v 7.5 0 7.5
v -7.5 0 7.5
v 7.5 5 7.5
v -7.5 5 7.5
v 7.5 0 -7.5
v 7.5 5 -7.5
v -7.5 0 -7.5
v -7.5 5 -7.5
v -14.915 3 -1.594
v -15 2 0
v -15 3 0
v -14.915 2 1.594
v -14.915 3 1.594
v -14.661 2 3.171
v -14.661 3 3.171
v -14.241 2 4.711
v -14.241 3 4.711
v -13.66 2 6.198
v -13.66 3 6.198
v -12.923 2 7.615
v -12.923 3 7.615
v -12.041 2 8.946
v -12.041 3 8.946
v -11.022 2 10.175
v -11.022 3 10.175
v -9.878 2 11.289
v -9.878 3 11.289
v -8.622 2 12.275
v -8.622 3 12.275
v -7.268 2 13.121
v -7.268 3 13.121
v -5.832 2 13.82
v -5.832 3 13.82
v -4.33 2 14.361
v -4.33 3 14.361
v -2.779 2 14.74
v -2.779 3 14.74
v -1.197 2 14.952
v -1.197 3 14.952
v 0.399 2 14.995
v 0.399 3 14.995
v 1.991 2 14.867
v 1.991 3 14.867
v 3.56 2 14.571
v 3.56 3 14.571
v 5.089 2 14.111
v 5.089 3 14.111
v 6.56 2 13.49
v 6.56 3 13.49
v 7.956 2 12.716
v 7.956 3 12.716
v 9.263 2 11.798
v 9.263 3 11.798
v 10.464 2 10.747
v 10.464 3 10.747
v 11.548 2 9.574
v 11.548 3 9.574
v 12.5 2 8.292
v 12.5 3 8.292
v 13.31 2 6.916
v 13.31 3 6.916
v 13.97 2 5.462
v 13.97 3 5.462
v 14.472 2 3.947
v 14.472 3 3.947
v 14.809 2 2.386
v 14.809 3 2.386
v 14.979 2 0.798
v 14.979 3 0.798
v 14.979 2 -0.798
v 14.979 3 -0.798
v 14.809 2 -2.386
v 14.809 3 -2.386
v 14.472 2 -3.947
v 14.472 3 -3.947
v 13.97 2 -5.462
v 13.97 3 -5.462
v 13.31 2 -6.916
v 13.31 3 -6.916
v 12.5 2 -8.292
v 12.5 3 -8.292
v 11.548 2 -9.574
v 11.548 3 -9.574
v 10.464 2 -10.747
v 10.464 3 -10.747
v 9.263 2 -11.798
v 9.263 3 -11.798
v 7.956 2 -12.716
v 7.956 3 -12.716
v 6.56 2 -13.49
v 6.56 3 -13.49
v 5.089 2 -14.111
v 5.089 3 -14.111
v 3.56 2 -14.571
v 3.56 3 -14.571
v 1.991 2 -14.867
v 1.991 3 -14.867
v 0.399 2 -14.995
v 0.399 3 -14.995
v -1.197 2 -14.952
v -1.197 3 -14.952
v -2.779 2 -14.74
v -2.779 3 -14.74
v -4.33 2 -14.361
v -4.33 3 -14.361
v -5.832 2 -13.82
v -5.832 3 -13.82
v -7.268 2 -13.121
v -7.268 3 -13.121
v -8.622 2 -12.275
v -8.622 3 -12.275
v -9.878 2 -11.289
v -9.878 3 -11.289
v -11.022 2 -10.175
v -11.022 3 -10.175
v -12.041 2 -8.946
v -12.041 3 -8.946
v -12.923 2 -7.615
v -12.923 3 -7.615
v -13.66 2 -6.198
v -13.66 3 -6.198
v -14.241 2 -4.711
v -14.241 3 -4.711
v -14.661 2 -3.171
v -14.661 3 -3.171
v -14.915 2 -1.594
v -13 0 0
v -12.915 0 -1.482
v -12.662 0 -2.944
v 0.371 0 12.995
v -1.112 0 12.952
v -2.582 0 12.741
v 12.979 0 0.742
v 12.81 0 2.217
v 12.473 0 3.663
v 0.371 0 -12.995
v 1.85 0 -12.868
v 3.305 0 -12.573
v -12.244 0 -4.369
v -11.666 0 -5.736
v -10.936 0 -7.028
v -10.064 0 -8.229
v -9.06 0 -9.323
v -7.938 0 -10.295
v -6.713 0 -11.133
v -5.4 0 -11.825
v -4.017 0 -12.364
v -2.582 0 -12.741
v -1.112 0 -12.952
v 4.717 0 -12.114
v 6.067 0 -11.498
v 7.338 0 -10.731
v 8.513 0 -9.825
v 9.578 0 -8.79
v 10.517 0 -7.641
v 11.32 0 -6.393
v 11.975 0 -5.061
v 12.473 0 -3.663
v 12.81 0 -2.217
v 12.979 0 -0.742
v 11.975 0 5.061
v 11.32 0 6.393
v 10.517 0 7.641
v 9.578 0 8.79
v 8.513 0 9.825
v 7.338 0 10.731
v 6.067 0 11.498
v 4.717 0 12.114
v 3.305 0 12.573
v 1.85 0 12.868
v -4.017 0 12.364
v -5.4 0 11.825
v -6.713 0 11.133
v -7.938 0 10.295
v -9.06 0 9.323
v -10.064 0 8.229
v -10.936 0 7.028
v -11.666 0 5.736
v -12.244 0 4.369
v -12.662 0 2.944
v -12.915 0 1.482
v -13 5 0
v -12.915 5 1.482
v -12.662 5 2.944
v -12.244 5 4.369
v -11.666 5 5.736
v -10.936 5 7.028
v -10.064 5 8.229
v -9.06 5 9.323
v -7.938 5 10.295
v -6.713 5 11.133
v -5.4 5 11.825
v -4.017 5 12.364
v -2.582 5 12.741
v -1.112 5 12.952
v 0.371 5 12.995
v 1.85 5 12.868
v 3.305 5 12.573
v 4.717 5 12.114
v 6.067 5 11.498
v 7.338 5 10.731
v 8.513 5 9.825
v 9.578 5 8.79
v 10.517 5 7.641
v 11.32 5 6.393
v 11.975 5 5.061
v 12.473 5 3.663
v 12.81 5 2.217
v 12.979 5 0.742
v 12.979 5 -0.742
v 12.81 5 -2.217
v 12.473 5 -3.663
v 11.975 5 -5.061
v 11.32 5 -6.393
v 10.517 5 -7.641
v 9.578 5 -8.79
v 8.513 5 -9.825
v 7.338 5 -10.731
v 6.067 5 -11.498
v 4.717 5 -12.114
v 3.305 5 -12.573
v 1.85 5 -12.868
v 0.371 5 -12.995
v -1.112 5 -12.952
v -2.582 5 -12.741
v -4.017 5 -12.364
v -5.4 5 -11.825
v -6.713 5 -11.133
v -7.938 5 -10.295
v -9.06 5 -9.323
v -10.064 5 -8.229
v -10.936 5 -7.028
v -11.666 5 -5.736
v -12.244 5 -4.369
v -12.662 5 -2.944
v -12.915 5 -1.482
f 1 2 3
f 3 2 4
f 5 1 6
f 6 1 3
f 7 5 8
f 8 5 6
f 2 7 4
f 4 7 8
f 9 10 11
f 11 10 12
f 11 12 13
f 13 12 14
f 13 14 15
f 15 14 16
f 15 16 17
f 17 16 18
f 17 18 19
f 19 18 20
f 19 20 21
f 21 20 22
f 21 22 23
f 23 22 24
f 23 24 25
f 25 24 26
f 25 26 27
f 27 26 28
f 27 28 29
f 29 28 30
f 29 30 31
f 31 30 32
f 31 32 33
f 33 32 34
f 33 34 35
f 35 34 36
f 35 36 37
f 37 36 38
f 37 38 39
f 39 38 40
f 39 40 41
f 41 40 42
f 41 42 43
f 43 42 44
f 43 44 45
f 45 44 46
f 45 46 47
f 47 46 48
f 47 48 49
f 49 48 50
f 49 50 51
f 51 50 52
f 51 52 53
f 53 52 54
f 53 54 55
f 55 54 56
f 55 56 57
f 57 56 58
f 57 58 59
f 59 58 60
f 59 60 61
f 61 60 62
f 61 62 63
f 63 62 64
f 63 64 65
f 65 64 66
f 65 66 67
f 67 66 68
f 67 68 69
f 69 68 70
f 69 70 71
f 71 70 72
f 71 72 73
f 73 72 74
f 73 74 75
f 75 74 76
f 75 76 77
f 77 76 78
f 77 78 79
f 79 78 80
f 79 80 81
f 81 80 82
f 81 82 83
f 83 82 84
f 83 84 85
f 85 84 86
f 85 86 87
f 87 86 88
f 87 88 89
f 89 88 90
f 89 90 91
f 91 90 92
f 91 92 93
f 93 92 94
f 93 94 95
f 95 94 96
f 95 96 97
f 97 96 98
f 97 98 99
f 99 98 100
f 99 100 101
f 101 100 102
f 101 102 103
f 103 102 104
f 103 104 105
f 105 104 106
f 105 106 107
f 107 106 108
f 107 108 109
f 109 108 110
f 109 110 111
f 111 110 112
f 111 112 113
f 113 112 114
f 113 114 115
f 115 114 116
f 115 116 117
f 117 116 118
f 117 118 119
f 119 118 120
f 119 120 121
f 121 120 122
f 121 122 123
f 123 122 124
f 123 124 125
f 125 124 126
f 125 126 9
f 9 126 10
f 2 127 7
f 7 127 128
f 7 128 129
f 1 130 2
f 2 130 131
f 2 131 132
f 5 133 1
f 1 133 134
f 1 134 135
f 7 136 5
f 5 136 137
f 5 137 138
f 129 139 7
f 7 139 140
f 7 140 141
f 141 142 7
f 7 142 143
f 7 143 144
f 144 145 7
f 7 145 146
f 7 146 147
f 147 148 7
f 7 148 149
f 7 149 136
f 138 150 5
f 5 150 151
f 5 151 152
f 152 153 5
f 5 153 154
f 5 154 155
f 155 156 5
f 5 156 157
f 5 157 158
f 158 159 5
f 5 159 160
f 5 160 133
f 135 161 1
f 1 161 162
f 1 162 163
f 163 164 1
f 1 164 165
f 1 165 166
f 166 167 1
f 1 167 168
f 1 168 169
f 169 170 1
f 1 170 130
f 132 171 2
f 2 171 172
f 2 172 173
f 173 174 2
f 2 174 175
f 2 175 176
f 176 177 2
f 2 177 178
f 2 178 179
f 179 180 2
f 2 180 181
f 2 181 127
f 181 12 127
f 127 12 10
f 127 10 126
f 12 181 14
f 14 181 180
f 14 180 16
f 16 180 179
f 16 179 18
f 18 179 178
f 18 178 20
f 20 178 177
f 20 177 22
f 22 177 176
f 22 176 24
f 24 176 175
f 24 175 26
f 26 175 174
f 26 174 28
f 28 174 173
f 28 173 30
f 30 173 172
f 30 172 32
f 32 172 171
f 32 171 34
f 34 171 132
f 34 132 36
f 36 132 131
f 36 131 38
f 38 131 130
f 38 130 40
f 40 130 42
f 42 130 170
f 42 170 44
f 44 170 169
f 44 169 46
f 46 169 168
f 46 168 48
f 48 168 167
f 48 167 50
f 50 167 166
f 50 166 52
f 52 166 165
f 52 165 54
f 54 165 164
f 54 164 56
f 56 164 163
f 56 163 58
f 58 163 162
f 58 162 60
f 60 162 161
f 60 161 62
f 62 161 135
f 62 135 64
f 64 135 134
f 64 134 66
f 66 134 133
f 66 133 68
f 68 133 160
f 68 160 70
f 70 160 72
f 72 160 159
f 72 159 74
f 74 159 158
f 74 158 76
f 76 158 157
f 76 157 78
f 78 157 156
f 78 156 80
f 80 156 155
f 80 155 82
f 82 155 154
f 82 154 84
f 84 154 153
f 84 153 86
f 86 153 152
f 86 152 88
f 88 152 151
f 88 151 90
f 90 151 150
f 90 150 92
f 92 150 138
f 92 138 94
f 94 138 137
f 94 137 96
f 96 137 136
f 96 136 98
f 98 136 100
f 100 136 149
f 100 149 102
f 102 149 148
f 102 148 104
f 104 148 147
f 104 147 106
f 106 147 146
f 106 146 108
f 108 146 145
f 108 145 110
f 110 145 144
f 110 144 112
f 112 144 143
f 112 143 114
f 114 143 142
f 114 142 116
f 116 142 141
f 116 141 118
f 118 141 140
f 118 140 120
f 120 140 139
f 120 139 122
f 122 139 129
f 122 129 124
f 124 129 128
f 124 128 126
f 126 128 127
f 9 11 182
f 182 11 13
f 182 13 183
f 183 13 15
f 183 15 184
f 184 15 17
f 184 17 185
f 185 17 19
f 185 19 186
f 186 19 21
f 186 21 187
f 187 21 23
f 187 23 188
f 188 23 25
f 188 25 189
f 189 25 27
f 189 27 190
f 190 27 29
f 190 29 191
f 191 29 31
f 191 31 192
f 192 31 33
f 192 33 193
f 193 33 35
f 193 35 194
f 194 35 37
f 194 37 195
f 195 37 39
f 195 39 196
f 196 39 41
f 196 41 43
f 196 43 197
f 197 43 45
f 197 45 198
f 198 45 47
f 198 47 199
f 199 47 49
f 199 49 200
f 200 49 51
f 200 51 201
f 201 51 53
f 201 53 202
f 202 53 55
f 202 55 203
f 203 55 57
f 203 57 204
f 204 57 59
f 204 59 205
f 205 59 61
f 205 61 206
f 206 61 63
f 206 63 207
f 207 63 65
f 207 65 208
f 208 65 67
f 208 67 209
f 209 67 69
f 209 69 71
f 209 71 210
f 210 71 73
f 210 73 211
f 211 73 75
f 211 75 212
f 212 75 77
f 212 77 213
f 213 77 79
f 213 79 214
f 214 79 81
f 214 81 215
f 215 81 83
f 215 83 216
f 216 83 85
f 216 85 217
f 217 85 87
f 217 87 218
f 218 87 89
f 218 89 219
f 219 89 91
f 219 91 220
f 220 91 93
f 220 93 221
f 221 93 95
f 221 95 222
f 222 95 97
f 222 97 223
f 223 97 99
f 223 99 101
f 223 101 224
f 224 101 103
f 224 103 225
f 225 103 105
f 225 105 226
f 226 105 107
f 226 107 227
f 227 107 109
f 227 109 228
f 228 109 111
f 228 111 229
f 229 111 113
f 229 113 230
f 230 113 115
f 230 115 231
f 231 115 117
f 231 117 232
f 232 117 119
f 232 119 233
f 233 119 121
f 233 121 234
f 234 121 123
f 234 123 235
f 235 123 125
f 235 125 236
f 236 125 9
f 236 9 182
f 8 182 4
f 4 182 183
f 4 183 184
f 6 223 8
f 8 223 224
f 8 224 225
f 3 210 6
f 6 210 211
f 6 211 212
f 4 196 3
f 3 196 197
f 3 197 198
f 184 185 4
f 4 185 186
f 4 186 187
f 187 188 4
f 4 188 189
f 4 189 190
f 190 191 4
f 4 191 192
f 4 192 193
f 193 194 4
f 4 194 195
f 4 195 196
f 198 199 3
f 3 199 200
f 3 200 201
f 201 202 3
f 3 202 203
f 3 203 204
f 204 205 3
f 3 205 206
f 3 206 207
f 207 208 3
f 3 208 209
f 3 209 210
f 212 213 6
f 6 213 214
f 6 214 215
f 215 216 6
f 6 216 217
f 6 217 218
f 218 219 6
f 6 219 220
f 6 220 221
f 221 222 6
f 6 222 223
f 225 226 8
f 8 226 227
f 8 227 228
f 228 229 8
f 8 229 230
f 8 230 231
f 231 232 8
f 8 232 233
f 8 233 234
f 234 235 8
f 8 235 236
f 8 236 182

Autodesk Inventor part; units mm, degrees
ref_plane "YZ Plane" through (0, 0, 0) normal (1, 0, 0) x (0, 1, 0)
ref_plane "XZ Plane" through (0, 0, 0) normal (0, 1, 0) x (-1, 0, 0)
ref_plane "XY Plane" through (0, 0, 0) normal (0, 0, 1) x (1, 0, 0)
sketch "Sketch1" plane through (0, 0, 0) normal (0, 1, 0) x (-1, 0, 0)
  line L0 (7.5, 7.5) -> (-7.5, 7.5)
  line L1 (-7.5, 7.5) -> (-7.5, -7.5)
  line L2 (-7.5, -7.5) -> (7.5, -7.5)
  line L3 (7.5, -7.5) -> (7.5, 7.5)
  circle A0 centre (0, 0) radius 15
  dimension "d0" = 15
  dimension "d1" = 15
  dimension "d2" = 30
  dimension "d3" = 7.5
  dimension "d4" = 7.5
extrude "Extrusion1" add sketch "Sketch1" along normal blind 5
chamfer "Chamfer1" distance 2 angle 45 2 edges at (15, 5, 0) (15, 0, 0)
equation "\"d3\" = 0.5 * d0"
equation "\"d4\" = 0.5 * d1"
properties part number "Test Ring"
